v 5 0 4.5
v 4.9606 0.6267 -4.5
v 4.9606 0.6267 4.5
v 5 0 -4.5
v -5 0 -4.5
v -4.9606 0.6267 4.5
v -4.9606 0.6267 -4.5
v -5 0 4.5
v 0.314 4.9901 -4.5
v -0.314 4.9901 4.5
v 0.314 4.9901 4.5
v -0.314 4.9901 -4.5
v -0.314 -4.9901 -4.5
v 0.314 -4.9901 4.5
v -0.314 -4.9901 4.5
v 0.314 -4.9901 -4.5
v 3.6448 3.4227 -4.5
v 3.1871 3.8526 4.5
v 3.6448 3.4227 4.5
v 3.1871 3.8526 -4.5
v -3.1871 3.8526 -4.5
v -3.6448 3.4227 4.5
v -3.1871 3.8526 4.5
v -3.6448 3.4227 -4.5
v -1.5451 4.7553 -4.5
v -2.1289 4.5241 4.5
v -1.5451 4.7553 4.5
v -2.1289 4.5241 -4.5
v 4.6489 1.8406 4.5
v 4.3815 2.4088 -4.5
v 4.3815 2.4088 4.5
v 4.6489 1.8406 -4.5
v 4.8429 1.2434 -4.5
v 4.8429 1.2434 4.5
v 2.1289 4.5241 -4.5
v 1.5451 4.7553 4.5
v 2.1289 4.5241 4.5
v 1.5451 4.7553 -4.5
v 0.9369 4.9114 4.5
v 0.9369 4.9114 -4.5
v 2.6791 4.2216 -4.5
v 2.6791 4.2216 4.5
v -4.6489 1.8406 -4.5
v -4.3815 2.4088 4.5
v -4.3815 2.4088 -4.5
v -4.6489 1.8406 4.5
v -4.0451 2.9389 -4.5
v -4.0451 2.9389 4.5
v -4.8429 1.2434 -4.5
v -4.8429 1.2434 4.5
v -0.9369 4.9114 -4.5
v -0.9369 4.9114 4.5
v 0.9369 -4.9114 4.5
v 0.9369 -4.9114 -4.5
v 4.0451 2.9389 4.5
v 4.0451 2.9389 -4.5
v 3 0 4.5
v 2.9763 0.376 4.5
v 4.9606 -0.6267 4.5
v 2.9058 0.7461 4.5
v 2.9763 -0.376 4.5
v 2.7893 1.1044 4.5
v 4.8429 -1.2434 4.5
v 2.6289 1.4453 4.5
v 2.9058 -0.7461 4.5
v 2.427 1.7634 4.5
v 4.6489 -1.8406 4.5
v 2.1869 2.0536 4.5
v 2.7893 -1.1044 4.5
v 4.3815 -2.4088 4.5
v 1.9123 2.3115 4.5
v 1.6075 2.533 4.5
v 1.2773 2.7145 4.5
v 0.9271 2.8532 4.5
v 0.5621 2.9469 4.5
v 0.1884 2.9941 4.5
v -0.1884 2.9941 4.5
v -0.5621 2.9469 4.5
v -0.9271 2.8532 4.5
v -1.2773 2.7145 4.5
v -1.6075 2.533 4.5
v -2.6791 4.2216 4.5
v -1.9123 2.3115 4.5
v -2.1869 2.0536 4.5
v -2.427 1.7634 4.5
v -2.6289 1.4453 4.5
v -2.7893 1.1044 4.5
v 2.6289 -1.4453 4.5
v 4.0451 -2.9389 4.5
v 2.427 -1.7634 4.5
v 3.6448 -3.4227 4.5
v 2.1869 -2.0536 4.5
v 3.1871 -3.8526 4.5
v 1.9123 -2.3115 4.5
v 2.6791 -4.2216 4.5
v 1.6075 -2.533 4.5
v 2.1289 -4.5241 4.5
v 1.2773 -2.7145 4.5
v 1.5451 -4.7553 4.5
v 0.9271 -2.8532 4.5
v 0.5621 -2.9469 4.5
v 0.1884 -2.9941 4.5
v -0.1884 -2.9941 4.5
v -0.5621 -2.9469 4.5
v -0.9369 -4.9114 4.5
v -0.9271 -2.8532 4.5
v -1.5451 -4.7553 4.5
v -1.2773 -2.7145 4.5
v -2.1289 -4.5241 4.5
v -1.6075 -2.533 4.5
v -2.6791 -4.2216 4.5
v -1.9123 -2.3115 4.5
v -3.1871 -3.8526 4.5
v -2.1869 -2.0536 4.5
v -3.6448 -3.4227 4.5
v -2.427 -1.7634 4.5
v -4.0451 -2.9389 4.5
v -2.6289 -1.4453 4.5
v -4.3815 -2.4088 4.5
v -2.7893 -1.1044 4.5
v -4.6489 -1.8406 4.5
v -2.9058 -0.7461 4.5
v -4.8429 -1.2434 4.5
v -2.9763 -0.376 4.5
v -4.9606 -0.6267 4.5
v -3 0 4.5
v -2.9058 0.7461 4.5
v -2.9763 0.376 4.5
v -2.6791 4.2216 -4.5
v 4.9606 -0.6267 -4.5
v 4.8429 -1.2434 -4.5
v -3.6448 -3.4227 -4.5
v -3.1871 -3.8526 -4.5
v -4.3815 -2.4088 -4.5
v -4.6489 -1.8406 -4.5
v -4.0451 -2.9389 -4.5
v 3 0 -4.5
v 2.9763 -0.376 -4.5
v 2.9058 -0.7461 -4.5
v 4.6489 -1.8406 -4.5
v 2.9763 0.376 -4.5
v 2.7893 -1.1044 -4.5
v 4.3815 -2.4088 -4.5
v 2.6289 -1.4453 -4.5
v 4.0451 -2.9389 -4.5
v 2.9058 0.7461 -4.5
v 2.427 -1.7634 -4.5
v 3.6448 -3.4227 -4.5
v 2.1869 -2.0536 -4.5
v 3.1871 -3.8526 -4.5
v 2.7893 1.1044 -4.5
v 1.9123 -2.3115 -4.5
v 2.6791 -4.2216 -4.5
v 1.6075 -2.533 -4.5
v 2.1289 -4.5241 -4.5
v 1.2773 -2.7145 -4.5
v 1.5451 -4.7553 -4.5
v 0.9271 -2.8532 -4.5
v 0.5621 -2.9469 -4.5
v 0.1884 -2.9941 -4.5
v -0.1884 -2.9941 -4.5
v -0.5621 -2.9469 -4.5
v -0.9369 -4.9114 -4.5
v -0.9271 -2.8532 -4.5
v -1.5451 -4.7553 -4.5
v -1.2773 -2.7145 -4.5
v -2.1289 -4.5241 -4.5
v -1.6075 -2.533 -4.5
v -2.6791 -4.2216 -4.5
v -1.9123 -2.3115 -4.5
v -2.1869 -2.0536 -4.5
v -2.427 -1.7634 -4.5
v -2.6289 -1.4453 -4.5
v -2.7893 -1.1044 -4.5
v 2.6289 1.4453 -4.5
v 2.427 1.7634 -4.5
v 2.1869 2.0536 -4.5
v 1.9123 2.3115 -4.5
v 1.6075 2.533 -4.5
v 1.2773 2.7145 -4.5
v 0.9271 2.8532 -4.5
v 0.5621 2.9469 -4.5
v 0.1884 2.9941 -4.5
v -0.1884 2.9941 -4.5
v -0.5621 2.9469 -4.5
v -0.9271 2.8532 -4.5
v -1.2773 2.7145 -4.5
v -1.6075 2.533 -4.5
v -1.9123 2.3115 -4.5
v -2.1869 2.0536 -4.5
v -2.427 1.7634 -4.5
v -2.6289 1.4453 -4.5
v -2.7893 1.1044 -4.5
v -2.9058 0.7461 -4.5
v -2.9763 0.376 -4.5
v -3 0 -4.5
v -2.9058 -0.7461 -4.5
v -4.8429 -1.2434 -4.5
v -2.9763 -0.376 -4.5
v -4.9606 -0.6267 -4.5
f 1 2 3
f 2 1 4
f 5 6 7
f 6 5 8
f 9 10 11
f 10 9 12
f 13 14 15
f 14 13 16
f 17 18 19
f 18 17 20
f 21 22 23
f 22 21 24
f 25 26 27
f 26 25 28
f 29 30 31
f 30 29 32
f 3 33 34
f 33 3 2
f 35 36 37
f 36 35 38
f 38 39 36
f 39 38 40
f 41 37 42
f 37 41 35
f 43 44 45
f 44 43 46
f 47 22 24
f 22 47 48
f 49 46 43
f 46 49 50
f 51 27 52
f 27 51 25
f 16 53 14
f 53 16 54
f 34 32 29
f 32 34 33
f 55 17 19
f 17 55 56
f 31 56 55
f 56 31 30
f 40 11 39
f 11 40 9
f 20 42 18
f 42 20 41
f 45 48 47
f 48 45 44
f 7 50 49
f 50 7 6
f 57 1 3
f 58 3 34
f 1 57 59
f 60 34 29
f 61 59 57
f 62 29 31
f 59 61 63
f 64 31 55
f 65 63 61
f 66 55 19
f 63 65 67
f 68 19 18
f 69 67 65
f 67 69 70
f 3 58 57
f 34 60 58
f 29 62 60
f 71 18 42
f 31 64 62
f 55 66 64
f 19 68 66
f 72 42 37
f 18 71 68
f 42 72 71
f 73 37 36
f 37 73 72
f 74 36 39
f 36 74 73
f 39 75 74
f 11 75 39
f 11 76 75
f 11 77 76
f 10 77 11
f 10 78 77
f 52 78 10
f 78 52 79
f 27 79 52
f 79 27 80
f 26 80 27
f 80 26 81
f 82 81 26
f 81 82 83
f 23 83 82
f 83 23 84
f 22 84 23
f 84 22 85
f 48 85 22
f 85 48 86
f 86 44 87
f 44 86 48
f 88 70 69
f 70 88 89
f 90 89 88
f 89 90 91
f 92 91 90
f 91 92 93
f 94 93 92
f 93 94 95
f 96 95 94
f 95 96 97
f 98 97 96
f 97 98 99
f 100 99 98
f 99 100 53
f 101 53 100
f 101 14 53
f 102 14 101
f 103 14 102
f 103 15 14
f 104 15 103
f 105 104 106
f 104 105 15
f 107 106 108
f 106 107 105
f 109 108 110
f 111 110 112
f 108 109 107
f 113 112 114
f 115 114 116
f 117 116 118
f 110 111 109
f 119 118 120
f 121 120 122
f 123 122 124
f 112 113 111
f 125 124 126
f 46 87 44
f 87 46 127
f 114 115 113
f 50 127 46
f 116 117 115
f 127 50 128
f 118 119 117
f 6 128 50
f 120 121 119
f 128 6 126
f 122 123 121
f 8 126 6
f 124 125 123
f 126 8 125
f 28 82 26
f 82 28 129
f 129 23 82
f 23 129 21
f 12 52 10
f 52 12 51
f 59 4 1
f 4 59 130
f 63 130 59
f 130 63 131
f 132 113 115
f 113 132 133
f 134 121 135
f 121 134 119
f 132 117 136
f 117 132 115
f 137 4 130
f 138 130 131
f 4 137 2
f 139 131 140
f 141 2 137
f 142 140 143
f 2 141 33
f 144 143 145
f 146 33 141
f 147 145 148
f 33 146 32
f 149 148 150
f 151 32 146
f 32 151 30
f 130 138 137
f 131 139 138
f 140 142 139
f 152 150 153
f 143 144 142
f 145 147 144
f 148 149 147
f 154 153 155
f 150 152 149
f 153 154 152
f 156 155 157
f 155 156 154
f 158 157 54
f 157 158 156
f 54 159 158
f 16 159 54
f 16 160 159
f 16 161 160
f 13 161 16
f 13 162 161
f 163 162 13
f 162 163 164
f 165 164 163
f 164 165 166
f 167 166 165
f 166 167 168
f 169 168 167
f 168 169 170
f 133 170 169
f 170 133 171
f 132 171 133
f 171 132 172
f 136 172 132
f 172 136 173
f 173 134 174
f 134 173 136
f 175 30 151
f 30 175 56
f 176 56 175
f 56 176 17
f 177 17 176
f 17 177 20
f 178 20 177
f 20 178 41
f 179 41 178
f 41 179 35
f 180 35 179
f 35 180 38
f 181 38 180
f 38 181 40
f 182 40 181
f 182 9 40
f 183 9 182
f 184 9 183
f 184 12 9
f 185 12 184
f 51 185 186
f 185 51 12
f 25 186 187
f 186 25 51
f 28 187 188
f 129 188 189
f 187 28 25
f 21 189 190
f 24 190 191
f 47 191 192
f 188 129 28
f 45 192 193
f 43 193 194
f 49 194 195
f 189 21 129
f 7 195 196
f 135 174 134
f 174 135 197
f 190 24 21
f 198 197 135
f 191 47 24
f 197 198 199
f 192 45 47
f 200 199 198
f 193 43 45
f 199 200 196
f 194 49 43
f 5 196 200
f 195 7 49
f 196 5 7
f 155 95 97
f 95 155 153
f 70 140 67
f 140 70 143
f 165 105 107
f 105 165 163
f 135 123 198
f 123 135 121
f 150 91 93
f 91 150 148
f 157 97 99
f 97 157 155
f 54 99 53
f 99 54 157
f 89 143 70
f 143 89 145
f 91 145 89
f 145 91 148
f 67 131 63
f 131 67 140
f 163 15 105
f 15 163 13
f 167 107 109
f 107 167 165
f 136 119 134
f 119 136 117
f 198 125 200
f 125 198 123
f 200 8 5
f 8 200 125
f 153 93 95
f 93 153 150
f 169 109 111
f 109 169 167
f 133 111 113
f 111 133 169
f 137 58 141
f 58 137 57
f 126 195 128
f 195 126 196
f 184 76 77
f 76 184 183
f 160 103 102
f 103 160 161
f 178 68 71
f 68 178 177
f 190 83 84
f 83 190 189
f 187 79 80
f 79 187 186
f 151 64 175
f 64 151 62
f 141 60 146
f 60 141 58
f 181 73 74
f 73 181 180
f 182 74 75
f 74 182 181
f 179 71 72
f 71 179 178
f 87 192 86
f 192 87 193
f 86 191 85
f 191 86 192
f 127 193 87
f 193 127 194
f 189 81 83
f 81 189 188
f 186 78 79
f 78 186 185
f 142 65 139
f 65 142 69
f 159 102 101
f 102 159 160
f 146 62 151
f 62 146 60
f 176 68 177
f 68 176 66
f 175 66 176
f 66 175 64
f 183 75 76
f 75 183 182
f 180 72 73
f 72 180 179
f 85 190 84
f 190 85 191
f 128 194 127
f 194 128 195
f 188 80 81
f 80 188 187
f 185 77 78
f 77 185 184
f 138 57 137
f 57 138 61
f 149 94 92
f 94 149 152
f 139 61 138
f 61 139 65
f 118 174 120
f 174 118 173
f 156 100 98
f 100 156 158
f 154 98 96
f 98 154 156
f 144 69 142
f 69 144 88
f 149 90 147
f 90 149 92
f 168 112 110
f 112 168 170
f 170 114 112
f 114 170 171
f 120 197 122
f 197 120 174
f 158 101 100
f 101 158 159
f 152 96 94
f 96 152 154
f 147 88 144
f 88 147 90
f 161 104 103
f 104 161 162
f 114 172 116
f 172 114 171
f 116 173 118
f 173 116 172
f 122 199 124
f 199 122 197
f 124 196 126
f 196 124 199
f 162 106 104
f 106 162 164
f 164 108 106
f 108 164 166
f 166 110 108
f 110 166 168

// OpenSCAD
$fn = 50;


difference() {
	union() {
		translate(v = [0, 0, -4.5000000000]) {
			cylinder(h = 9, r = 5.0000000000);
		}
	}
	union() {
		translate(v = [0, 0, -100.0000000000]) {
			cylinder(h = 200, r = 3);
		}
	}
}
